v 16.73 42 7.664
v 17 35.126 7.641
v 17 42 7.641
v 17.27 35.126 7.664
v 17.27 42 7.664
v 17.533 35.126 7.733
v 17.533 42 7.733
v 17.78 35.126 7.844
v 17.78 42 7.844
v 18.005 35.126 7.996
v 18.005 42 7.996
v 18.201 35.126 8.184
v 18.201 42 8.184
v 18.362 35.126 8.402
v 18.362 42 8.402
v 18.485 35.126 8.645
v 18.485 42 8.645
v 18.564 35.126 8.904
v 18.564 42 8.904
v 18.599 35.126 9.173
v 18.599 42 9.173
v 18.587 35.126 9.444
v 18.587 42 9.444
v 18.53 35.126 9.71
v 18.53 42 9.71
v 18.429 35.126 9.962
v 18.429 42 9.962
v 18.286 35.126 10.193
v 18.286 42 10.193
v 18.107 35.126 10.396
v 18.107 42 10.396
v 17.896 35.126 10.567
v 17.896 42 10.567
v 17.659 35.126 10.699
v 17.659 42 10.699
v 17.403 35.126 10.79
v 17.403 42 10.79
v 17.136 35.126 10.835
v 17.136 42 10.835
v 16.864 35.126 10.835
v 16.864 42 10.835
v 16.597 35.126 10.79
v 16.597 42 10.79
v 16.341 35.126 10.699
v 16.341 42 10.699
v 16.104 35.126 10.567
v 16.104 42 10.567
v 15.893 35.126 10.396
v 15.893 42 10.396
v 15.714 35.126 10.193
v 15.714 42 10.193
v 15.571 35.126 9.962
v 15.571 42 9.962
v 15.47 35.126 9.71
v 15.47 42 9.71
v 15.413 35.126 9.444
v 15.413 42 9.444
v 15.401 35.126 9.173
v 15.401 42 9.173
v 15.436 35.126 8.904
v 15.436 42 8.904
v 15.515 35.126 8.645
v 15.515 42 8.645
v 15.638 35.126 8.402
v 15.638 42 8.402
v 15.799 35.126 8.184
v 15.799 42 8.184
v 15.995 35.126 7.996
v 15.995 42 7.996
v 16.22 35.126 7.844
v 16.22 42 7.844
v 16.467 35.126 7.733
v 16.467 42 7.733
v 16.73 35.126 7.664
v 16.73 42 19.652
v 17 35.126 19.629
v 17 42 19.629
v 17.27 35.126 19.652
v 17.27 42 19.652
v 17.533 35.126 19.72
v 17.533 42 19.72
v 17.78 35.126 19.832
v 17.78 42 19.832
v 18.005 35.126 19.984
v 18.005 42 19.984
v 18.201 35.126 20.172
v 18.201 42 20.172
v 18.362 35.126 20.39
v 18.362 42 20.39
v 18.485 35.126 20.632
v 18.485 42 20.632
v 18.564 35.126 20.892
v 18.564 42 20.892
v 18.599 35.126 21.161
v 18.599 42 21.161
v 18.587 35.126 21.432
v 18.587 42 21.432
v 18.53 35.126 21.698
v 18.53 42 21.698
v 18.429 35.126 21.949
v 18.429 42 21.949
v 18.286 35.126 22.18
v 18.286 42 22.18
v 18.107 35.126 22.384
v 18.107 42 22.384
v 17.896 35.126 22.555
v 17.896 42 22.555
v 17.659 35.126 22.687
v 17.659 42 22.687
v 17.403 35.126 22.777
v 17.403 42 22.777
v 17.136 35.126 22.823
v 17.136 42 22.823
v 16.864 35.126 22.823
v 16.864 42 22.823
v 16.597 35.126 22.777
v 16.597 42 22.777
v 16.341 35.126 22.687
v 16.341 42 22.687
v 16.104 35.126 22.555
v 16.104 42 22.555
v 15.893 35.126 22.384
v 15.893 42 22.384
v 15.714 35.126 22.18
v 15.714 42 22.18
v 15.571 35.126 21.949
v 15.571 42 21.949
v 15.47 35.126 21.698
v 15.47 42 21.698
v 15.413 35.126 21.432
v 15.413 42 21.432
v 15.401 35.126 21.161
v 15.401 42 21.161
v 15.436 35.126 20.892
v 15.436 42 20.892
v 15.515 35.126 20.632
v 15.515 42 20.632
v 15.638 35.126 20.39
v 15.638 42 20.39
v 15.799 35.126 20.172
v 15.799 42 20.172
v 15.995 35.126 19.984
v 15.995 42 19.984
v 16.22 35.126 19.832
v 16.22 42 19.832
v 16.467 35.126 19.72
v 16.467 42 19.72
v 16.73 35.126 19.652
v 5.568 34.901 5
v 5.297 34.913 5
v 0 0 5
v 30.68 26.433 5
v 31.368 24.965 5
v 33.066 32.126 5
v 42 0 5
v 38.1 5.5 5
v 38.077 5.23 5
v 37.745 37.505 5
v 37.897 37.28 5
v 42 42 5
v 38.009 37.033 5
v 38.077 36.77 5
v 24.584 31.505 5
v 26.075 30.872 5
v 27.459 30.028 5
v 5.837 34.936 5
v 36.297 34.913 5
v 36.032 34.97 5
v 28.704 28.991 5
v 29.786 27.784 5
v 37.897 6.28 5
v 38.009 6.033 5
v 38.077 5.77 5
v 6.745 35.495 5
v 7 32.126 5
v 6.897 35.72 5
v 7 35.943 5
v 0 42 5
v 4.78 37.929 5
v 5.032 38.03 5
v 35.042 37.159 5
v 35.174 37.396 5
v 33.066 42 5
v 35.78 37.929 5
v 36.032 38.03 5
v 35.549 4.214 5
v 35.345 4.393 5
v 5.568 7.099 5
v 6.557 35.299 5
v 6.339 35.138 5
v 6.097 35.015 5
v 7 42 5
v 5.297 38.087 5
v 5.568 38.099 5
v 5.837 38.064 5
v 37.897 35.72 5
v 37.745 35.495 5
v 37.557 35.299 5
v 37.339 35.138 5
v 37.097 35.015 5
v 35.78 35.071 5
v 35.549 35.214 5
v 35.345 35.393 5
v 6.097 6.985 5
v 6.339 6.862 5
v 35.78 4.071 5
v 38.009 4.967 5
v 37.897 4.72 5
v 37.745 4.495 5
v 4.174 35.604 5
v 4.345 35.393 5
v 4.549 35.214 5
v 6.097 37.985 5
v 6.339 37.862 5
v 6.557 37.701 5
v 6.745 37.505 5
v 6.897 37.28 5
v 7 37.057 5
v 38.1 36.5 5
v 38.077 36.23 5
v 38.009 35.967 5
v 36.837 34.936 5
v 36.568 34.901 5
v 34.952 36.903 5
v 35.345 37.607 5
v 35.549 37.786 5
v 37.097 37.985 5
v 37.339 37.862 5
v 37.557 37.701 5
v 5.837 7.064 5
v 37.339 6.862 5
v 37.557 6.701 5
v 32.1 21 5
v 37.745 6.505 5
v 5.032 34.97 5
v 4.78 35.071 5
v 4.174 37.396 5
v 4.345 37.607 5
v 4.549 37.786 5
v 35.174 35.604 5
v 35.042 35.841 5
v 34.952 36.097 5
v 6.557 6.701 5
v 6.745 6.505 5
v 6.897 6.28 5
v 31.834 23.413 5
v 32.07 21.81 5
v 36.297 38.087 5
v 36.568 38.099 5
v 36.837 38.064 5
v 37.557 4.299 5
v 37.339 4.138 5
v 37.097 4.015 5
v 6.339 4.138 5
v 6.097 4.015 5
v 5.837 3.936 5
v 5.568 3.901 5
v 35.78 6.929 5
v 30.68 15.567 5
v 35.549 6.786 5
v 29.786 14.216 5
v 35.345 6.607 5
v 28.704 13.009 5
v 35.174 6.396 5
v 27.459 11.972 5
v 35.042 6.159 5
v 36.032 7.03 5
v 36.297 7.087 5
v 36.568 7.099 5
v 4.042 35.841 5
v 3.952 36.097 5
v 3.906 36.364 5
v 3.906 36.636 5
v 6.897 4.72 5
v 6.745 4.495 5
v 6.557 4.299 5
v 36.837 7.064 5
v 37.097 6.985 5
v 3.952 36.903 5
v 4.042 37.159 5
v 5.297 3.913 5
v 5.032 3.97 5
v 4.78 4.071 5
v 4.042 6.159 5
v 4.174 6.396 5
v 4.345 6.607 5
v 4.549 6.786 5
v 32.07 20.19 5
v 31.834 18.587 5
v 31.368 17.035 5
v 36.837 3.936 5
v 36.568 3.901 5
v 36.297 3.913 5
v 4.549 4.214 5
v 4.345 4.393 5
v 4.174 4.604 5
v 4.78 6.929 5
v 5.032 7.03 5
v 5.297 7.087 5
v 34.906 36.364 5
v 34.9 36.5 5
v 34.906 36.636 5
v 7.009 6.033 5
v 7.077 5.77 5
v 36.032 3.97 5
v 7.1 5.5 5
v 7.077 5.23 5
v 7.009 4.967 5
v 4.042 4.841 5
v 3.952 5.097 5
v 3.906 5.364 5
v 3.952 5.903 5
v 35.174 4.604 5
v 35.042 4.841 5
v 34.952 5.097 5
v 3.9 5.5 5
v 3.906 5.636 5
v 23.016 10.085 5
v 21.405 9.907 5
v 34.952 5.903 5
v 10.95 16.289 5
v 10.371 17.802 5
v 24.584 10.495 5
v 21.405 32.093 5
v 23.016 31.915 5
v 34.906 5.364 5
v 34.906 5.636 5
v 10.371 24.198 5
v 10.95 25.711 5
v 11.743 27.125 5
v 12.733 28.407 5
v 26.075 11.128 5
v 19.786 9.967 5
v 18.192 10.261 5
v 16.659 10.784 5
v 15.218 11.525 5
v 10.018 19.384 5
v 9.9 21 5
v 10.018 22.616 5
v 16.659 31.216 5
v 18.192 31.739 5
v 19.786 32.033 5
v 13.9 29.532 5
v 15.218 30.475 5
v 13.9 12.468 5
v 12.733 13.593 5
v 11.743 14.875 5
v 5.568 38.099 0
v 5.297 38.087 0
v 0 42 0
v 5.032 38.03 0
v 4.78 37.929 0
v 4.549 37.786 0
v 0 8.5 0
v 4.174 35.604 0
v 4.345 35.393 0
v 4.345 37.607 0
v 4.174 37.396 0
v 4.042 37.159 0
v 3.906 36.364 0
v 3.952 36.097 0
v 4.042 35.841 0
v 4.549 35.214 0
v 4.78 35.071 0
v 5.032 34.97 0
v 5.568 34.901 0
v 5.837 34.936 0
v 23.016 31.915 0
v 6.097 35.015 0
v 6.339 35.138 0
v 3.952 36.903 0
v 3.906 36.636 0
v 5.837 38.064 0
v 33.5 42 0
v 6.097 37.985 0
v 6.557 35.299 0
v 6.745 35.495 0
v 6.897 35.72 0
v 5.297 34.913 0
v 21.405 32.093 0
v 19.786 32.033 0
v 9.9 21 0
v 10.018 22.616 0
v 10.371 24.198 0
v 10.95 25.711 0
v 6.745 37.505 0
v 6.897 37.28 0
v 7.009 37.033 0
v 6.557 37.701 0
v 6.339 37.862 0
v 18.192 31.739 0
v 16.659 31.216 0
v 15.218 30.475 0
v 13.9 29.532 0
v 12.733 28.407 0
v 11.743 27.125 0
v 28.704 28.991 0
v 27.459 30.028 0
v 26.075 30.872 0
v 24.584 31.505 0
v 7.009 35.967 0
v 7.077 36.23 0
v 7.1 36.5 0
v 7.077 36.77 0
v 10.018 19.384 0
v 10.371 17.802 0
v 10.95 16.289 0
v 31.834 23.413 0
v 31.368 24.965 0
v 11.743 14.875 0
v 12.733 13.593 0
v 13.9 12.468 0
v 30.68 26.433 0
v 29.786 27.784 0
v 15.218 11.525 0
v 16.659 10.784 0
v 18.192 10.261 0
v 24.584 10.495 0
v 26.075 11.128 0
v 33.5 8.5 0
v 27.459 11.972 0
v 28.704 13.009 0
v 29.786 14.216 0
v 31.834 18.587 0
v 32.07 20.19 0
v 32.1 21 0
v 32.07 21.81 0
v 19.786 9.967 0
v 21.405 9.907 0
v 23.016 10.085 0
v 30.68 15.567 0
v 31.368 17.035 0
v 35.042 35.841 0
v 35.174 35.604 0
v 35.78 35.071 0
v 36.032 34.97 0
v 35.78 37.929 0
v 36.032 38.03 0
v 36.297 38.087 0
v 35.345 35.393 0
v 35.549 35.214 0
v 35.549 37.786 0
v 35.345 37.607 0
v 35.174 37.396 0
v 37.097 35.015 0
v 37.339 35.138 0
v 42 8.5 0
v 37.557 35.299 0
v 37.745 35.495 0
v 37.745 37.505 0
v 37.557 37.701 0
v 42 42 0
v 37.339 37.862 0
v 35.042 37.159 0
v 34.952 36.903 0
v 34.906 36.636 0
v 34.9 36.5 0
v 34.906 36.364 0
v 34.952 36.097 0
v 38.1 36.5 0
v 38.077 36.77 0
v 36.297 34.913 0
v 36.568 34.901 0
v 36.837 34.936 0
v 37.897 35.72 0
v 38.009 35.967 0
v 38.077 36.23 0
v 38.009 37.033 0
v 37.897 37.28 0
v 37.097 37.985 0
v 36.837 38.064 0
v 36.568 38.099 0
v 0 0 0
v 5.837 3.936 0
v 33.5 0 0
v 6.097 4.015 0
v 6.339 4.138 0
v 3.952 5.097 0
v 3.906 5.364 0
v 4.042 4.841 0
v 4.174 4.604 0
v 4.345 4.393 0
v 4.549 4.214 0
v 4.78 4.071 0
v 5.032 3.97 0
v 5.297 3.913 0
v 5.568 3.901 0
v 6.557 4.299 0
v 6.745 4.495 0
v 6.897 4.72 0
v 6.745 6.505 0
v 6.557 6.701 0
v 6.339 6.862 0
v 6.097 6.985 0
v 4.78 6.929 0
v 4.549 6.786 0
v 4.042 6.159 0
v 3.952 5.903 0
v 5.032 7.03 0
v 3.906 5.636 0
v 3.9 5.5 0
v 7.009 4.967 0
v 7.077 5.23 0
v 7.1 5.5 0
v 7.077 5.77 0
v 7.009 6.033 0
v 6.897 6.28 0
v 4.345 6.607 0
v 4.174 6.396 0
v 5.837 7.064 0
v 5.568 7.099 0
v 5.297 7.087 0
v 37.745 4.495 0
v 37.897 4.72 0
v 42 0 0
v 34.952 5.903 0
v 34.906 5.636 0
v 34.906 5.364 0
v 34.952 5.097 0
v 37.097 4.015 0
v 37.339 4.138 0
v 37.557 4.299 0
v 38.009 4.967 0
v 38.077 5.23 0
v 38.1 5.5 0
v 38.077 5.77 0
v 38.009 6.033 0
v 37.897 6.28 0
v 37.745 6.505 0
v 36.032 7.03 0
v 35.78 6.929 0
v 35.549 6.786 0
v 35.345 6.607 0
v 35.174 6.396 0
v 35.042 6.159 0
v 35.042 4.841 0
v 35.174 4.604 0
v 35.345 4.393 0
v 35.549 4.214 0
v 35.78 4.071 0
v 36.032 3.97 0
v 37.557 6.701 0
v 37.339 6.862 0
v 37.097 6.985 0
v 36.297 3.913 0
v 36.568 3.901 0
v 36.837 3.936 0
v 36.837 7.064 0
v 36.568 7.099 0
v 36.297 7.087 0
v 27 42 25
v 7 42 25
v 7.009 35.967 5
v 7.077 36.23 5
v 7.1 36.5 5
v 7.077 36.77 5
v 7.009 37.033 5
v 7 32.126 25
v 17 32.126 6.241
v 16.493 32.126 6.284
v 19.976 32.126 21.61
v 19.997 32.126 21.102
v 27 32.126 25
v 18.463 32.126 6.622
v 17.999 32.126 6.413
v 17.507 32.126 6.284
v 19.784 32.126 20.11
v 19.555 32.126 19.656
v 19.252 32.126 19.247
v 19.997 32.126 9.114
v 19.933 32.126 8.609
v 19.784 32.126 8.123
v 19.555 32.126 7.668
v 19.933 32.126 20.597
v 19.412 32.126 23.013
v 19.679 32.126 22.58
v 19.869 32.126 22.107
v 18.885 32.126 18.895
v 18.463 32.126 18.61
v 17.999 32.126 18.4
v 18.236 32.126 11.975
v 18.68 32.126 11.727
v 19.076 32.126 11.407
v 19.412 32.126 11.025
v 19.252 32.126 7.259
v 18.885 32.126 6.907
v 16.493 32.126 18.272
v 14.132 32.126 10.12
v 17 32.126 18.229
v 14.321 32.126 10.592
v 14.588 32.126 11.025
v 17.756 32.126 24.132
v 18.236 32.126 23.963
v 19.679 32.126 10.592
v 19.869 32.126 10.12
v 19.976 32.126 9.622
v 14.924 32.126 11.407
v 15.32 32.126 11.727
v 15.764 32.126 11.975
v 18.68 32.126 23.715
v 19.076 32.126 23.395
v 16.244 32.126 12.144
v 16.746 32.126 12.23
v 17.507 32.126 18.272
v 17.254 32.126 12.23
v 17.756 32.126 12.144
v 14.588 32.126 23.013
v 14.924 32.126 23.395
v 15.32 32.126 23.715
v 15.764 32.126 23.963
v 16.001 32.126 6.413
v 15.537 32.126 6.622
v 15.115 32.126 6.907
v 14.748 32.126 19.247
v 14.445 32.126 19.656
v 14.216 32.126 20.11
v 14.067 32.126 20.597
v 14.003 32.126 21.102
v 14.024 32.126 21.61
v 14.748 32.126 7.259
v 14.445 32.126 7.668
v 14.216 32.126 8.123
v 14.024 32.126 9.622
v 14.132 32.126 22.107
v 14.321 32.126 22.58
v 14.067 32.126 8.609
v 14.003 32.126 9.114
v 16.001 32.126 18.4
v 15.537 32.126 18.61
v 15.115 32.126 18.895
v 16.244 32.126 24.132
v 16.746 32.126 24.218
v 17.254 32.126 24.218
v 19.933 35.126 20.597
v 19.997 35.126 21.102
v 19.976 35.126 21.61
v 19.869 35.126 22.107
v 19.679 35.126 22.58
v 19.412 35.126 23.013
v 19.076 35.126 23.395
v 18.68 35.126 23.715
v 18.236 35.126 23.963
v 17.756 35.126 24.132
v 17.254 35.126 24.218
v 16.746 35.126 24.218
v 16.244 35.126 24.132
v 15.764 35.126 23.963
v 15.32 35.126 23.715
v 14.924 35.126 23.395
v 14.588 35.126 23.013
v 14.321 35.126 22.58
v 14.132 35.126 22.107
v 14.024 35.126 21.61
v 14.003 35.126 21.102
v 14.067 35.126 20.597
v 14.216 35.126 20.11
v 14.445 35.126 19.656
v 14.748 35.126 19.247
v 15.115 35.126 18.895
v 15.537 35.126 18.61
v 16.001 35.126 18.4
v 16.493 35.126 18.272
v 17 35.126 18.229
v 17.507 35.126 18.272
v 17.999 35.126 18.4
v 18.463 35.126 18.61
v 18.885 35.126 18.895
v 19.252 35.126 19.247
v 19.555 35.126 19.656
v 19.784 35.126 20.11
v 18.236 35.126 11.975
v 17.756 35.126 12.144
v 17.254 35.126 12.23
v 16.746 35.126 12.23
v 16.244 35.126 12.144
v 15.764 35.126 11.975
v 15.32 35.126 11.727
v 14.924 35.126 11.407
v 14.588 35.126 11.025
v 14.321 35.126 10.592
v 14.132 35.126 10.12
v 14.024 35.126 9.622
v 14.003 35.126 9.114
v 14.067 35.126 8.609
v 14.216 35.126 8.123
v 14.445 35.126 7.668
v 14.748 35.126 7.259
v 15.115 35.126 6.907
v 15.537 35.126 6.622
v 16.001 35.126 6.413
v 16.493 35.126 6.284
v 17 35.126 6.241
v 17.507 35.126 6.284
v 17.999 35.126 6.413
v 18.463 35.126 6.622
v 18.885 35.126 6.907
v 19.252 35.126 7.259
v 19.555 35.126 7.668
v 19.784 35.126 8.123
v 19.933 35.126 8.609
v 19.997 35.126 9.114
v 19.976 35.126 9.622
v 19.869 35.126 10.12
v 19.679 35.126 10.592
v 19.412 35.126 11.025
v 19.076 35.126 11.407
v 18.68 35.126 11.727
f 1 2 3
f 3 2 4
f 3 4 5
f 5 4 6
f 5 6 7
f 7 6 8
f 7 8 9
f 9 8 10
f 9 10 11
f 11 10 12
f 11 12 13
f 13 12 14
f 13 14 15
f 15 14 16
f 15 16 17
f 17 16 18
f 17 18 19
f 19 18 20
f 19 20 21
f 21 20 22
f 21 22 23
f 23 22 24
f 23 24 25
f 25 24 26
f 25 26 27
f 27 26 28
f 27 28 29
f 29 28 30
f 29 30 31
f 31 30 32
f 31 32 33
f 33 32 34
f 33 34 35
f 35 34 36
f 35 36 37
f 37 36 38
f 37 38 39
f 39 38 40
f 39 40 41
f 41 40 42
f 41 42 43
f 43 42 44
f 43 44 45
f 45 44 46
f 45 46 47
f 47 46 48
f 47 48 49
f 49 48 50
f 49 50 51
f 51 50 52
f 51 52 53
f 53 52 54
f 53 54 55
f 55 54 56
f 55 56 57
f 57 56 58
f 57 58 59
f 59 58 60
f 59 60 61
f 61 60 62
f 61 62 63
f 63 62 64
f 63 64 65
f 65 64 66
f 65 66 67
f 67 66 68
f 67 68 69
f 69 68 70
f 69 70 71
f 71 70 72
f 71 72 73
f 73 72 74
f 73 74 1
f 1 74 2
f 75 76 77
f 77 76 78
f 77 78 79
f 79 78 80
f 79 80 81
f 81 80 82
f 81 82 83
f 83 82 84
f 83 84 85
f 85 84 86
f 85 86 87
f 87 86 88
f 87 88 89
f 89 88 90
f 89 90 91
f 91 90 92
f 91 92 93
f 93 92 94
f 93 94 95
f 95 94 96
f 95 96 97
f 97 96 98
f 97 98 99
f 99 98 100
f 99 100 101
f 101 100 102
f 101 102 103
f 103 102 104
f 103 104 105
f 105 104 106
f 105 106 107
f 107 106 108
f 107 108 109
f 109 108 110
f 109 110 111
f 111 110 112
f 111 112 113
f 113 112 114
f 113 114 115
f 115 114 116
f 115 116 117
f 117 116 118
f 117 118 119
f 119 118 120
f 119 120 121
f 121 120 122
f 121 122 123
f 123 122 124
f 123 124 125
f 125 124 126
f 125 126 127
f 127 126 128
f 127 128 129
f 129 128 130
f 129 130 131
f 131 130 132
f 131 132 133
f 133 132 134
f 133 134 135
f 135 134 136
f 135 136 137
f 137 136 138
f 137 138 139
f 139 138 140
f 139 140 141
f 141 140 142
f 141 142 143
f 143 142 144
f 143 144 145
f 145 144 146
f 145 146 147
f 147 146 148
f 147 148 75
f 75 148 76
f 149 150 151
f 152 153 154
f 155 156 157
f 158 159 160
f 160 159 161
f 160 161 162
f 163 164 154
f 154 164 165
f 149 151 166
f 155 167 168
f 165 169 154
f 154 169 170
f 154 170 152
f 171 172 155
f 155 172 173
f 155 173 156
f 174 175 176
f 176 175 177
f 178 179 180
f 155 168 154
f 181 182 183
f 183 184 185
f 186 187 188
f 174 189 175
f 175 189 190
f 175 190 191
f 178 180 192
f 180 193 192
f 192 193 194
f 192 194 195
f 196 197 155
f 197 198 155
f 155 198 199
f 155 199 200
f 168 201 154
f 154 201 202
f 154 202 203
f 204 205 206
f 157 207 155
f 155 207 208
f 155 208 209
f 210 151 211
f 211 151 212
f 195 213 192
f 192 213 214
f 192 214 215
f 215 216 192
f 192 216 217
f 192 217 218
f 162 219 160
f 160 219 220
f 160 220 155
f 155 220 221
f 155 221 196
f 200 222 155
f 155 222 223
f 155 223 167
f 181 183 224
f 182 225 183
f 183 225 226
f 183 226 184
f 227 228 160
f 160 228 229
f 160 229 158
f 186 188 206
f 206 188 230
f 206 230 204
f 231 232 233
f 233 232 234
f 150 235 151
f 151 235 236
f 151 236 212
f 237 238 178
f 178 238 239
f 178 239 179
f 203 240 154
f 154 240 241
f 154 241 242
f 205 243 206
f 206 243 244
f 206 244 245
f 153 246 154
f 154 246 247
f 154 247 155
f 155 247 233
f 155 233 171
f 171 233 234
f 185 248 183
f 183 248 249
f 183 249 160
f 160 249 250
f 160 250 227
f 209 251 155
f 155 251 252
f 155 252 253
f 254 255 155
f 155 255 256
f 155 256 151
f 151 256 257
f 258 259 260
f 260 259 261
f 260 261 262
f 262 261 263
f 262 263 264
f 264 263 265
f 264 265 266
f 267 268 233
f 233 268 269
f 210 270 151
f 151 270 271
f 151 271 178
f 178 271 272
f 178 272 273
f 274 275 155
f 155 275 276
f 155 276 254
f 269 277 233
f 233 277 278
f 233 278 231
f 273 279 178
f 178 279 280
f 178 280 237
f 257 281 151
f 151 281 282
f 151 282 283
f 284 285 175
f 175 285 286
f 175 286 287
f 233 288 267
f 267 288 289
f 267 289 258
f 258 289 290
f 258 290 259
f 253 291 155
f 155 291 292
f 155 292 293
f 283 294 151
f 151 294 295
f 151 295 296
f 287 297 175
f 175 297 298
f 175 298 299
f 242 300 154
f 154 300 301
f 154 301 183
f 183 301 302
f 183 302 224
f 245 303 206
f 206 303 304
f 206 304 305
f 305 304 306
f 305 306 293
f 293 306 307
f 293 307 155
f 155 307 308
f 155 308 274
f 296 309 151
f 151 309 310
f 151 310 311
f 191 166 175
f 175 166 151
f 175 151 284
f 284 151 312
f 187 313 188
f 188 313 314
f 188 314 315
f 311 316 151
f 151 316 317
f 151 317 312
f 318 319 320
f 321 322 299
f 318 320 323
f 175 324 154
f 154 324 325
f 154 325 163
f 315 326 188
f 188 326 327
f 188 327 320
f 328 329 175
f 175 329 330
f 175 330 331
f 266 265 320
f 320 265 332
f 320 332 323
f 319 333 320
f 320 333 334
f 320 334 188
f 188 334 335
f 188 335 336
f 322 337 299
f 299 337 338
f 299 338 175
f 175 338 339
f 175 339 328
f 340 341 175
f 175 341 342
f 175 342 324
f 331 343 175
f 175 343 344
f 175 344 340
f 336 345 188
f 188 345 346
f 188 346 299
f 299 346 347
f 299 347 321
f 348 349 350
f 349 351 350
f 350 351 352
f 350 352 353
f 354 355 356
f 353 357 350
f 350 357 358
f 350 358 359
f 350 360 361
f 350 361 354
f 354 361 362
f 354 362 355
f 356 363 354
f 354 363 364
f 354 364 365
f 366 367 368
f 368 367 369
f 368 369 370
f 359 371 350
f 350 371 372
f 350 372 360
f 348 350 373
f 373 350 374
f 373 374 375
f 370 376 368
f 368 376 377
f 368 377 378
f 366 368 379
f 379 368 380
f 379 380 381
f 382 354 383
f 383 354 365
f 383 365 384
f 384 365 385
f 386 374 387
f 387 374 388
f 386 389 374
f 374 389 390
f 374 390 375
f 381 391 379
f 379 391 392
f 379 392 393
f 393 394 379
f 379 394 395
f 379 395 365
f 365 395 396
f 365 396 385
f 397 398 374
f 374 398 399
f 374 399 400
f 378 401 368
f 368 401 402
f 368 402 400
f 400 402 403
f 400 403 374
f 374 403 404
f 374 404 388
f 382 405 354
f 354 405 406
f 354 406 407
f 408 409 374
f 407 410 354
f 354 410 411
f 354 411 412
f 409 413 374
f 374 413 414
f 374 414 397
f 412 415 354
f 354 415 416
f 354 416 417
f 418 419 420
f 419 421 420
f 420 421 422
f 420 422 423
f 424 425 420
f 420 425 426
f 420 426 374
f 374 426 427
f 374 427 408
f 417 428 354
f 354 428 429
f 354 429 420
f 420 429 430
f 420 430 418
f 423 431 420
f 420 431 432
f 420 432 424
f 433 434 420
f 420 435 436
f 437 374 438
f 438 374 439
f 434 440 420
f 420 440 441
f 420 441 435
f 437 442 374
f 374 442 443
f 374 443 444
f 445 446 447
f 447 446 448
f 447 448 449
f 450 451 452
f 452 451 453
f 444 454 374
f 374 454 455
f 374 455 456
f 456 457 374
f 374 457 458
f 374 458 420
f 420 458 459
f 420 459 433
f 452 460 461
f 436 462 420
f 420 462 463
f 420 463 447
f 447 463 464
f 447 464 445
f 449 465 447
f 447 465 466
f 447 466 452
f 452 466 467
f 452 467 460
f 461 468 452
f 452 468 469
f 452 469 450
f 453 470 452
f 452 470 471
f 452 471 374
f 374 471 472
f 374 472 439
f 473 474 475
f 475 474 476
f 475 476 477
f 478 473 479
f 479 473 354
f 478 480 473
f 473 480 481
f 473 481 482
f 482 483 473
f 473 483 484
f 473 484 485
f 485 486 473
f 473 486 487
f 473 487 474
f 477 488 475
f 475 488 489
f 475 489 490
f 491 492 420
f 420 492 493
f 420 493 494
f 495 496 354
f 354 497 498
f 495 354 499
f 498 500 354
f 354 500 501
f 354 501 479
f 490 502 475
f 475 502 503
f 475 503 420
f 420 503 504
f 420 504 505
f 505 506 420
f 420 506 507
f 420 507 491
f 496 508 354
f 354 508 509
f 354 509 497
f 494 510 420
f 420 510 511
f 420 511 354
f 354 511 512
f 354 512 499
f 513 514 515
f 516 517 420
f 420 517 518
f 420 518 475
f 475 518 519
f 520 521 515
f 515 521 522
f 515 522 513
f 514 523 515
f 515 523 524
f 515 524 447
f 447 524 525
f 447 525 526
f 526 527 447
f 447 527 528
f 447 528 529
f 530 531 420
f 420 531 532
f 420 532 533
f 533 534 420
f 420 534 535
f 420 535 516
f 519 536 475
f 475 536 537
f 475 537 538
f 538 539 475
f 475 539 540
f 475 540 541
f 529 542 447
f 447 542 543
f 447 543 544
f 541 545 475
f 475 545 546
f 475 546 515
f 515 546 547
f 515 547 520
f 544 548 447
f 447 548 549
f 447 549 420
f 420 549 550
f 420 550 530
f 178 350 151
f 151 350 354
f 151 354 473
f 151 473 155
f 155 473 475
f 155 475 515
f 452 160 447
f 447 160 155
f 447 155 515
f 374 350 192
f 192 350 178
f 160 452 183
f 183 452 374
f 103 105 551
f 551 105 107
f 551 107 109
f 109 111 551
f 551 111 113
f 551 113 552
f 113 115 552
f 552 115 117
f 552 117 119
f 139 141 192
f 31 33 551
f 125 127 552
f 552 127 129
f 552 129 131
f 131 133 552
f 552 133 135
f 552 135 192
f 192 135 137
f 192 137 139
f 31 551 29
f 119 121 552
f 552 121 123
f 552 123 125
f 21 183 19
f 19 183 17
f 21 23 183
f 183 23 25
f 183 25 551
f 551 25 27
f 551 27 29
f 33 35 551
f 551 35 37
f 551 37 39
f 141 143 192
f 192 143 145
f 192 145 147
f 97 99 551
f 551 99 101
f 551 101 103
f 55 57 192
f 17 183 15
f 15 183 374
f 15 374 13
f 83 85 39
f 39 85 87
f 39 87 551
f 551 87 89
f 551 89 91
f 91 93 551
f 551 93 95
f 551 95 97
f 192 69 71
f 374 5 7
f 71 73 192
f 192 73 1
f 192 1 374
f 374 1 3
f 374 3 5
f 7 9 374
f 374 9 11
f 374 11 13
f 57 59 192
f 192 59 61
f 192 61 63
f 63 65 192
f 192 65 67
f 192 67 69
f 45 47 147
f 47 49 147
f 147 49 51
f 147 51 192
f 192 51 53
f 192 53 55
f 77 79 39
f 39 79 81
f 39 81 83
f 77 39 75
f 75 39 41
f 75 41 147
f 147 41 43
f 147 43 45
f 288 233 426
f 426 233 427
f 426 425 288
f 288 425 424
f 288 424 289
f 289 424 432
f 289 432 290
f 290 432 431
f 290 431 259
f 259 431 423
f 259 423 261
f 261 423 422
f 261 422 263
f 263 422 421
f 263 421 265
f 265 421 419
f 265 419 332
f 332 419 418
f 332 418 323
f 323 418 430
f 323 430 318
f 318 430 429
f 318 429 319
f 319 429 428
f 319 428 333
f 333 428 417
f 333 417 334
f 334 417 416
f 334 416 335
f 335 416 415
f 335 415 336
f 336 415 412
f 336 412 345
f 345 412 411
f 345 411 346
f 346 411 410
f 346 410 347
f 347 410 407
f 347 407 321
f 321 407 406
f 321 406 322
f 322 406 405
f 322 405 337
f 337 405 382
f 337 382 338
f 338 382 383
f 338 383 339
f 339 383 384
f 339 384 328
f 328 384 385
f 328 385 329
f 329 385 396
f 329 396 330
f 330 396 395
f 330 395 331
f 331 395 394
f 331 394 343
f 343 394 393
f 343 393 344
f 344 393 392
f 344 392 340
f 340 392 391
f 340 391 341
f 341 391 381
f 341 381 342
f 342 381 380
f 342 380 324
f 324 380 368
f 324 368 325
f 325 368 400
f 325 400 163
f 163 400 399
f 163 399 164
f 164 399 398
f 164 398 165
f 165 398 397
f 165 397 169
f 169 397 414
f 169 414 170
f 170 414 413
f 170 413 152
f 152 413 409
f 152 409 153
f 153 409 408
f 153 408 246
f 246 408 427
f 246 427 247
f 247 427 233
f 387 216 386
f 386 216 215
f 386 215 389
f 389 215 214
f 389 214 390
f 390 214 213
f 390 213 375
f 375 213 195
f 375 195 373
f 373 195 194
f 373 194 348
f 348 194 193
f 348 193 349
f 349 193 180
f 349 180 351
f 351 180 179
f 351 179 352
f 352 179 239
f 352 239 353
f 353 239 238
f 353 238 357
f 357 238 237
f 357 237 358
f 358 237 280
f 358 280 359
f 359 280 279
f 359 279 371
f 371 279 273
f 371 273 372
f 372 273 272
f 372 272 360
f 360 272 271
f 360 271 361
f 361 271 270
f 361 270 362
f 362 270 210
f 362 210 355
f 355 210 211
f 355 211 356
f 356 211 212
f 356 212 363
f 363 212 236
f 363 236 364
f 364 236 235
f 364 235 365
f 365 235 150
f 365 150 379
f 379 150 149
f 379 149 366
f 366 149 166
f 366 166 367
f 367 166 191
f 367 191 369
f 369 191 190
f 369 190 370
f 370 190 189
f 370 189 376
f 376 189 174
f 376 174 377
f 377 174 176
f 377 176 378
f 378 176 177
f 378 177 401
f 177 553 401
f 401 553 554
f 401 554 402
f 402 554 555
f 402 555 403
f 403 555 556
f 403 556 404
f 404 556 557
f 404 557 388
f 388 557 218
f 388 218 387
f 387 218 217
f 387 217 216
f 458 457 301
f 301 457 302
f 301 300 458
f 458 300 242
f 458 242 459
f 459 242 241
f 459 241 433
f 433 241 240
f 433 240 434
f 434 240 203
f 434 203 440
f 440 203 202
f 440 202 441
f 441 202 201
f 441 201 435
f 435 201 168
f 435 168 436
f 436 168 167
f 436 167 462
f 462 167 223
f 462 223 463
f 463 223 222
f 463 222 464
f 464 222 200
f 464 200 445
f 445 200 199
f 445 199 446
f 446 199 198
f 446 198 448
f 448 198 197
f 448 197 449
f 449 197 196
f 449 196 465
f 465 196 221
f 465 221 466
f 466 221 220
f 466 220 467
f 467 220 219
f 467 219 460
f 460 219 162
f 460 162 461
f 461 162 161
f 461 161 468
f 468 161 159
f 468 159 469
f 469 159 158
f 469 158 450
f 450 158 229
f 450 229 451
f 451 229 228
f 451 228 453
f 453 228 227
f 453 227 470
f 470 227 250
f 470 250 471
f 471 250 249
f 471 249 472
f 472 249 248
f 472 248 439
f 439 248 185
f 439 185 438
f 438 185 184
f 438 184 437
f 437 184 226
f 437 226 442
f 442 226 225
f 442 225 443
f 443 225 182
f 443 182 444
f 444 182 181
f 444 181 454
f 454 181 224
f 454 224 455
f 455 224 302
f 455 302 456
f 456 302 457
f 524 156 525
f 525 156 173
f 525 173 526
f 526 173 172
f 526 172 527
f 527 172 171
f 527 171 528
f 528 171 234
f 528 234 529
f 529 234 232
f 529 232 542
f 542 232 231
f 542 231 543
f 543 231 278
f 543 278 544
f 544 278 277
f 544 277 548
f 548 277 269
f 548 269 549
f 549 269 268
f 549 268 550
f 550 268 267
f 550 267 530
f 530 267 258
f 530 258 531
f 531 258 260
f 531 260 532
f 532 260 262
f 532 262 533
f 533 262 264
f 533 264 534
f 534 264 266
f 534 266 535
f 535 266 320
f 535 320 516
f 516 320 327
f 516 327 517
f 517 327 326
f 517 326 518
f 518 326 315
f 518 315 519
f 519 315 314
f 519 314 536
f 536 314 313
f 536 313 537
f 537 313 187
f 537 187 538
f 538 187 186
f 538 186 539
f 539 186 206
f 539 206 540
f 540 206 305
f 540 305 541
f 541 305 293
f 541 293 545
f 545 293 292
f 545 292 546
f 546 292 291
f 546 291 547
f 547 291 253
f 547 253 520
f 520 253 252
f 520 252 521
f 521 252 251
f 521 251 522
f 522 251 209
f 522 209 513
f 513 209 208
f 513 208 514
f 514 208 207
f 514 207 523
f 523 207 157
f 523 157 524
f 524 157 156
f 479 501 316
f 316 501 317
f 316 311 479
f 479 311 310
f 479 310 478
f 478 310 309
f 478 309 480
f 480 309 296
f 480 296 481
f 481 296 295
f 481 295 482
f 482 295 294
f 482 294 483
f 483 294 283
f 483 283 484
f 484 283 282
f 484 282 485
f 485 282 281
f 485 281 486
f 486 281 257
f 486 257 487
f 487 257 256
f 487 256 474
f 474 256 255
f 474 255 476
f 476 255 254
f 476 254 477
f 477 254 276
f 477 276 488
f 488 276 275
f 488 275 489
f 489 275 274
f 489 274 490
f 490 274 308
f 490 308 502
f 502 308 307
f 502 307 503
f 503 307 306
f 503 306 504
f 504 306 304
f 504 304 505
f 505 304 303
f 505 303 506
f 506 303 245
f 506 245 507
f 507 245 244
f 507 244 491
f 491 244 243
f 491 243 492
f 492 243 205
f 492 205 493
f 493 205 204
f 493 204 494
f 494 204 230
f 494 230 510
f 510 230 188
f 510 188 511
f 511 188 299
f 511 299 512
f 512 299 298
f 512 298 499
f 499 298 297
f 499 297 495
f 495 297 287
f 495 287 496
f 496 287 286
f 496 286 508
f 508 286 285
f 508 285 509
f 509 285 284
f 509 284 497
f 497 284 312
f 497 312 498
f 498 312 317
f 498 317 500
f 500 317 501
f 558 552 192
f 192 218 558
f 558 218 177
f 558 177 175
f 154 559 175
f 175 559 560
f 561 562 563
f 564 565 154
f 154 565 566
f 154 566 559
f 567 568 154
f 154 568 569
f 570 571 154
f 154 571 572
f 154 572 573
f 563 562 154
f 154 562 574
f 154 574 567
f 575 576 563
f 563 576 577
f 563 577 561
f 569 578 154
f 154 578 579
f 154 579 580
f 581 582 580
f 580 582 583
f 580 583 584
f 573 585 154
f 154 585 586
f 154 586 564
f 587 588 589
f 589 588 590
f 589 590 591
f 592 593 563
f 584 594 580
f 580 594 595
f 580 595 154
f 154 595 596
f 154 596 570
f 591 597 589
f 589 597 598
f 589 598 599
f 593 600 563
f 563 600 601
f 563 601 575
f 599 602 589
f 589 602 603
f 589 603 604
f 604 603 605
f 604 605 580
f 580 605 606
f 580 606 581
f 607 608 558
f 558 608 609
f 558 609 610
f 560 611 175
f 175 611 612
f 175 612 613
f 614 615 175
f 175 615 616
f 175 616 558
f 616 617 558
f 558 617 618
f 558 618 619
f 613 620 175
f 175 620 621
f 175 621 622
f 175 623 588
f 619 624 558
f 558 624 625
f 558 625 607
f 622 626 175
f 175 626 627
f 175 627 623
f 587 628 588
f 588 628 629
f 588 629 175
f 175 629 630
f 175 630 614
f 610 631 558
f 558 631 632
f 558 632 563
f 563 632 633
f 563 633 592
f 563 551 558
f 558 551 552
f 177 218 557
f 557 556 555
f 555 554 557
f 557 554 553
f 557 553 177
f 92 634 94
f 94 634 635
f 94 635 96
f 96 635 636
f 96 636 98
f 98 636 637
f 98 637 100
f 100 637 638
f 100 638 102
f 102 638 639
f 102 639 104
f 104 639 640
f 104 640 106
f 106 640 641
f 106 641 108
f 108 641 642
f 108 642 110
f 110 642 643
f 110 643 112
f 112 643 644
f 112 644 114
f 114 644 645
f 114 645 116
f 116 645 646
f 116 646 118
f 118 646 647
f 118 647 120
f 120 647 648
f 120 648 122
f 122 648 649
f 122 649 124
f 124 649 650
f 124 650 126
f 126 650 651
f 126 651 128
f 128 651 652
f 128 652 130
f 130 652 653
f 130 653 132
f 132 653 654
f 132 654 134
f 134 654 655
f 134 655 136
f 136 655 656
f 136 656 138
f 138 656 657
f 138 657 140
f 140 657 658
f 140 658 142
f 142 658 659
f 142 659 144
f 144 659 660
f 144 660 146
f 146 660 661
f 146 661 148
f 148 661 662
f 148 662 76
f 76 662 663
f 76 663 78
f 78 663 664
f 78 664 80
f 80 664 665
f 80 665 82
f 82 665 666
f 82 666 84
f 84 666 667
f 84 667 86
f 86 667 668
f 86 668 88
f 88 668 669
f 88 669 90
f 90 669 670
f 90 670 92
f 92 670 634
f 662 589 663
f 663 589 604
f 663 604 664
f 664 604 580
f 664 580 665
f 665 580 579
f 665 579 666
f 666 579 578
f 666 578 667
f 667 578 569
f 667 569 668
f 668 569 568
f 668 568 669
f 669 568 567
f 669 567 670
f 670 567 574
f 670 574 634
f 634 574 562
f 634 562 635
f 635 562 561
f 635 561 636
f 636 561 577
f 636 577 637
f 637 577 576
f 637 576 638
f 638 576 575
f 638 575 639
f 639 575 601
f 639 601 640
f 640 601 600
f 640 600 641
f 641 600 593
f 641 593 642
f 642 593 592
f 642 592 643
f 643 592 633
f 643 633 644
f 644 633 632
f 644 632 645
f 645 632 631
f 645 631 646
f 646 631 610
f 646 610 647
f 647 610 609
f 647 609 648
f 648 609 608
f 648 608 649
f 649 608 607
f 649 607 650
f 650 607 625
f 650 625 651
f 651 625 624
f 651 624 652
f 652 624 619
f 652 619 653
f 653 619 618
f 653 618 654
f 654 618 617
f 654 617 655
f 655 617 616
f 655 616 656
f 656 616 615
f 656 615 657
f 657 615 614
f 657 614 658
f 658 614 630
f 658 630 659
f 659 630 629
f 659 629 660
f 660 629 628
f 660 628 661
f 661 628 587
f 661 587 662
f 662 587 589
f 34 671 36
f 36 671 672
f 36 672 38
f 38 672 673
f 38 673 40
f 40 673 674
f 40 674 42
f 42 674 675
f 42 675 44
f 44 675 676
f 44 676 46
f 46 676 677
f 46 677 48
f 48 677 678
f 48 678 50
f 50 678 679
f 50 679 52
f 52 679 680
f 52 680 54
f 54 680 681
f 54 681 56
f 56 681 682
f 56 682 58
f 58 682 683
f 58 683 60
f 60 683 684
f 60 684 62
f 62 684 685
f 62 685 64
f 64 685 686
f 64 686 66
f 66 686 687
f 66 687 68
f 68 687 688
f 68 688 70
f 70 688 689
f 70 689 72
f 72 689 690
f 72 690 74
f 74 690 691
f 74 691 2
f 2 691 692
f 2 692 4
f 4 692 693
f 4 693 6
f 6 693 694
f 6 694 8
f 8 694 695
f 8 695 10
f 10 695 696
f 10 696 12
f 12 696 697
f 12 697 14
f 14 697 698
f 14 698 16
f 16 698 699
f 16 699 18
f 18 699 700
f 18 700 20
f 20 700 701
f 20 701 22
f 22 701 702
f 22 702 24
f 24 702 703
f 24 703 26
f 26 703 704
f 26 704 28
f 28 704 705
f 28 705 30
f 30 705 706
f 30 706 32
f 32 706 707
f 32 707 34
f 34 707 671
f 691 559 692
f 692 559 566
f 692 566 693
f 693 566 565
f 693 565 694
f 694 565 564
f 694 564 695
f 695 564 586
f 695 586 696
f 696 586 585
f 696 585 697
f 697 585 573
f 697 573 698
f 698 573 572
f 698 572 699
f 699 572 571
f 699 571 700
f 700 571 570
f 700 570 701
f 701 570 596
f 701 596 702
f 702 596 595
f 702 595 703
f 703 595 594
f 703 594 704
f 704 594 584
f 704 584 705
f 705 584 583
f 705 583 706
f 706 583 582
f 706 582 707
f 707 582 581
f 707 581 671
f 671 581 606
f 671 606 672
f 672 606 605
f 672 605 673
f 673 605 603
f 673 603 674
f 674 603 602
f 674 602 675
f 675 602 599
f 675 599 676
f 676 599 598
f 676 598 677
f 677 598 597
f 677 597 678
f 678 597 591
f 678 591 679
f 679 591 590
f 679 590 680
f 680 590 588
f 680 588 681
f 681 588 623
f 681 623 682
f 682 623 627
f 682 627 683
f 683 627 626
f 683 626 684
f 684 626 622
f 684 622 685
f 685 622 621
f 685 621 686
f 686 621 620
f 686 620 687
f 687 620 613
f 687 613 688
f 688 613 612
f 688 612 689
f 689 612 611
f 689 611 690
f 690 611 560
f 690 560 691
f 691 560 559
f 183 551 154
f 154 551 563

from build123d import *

# Parameters (mm, degrees)
SKETCH_1_W          = 42
SKETCH_1_H          = 42
SKETCH_1_R          = 11.1
EXTRUDE_1_DEPTH     = 5
SKETCH_2_R          = 1.6
CUT_EXTRUDE_1_DEPTH = 60.607046563
SKETCH_4_W          = 20
SKETCH_4_H          = 9.874323587
EXTRUDE_2_DEPTH     = 20
SKETCH_5_R          = 1.6
CUT_EXTRUDE_2_DEPTH = 20
SKETCH_6_R          = 3
CUT_EXTRUDE_3_DEPTH = 3
EXTRUDE_3_DEPTH     = 9.874324


with BuildPart() as part:
    # 草图1 → 凸台-拉伸1 (new body)
    with BuildSketch(Plane.XY):
        with Locations((21, 21)):
            Rectangle(SKETCH_1_W, SKETCH_1_H)
        with Locations((21, 21)):
            Circle(SKETCH_1_R, mode=Mode.SUBTRACT)
    extrude(amount=EXTRUDE_1_DEPTH)

    # 草图2 → 切除-拉伸1 (cut, through all)
    with BuildSketch(Plane.XY.offset(5)):
        with Locations(Location((36.5, 36.5, 0), (0, 0, 180))):
            Circle(SKETCH_2_R)
        with Locations((5.5, 36.5)):
            Circle(SKETCH_2_R)
        with Locations((36.5, 5.5)):
            Circle(SKETCH_2_R)
        with Locations(Location((5.5, 5.5, 0), (0, 0, 180))):
            Circle(SKETCH_2_R)
    extrude(amount=-CUT_EXTRUDE_1_DEPTH, mode=Mode.SUBTRACT)

    # 草图4 → 凸台-拉伸2 (add)
    with BuildSketch(Plane.XY.offset(5)):
        with Locations((17, 37.062838207)):
            Rectangle(SKETCH_4_W, SKETCH_4_H)
    extrude(amount=EXTRUDE_2_DEPTH)

    # 草图5 → 切除-拉伸2 (cut)
    with BuildSketch(Plane.XZ.offset(-32.125676413)):
        with Locations(Location((17, 21.228996284, 0), (0, 0, 270))):
            Circle(SKETCH_5_R)
        with Locations(Location((17, 9.241211578, 0), (0, 0, 270))):
            Circle(SKETCH_5_R)
    extrude(amount=-CUT_EXTRUDE_2_DEPTH, mode=Mode.SUBTRACT)

    # 草图6 → 切除-拉伸3 (cut)
    with BuildSketch(Plane.XZ.offset(-32.125676413)):
        with Locations(Location((17, 21.228996284, 0), (0, 0, 270))):
            Circle(SKETCH_6_R)
        with Locations(Location((17, 9.241211578, 0), (0, 0, 270))):
            Circle(SKETCH_6_R)
    extrude(amount=-CUT_EXTRUDE_3_DEPTH, mode=Mode.SUBTRACT)

    # 草图7 → 凸台-拉伸3 (add)
    with BuildSketch(Plane.XZ.offset(-32.125676413)):
        Polygon((27, 5), (33.066312707, 5), (27, 25), align=None)
    extrude(amount=-EXTRUDE_3_DEPTH)


solid = part.part
